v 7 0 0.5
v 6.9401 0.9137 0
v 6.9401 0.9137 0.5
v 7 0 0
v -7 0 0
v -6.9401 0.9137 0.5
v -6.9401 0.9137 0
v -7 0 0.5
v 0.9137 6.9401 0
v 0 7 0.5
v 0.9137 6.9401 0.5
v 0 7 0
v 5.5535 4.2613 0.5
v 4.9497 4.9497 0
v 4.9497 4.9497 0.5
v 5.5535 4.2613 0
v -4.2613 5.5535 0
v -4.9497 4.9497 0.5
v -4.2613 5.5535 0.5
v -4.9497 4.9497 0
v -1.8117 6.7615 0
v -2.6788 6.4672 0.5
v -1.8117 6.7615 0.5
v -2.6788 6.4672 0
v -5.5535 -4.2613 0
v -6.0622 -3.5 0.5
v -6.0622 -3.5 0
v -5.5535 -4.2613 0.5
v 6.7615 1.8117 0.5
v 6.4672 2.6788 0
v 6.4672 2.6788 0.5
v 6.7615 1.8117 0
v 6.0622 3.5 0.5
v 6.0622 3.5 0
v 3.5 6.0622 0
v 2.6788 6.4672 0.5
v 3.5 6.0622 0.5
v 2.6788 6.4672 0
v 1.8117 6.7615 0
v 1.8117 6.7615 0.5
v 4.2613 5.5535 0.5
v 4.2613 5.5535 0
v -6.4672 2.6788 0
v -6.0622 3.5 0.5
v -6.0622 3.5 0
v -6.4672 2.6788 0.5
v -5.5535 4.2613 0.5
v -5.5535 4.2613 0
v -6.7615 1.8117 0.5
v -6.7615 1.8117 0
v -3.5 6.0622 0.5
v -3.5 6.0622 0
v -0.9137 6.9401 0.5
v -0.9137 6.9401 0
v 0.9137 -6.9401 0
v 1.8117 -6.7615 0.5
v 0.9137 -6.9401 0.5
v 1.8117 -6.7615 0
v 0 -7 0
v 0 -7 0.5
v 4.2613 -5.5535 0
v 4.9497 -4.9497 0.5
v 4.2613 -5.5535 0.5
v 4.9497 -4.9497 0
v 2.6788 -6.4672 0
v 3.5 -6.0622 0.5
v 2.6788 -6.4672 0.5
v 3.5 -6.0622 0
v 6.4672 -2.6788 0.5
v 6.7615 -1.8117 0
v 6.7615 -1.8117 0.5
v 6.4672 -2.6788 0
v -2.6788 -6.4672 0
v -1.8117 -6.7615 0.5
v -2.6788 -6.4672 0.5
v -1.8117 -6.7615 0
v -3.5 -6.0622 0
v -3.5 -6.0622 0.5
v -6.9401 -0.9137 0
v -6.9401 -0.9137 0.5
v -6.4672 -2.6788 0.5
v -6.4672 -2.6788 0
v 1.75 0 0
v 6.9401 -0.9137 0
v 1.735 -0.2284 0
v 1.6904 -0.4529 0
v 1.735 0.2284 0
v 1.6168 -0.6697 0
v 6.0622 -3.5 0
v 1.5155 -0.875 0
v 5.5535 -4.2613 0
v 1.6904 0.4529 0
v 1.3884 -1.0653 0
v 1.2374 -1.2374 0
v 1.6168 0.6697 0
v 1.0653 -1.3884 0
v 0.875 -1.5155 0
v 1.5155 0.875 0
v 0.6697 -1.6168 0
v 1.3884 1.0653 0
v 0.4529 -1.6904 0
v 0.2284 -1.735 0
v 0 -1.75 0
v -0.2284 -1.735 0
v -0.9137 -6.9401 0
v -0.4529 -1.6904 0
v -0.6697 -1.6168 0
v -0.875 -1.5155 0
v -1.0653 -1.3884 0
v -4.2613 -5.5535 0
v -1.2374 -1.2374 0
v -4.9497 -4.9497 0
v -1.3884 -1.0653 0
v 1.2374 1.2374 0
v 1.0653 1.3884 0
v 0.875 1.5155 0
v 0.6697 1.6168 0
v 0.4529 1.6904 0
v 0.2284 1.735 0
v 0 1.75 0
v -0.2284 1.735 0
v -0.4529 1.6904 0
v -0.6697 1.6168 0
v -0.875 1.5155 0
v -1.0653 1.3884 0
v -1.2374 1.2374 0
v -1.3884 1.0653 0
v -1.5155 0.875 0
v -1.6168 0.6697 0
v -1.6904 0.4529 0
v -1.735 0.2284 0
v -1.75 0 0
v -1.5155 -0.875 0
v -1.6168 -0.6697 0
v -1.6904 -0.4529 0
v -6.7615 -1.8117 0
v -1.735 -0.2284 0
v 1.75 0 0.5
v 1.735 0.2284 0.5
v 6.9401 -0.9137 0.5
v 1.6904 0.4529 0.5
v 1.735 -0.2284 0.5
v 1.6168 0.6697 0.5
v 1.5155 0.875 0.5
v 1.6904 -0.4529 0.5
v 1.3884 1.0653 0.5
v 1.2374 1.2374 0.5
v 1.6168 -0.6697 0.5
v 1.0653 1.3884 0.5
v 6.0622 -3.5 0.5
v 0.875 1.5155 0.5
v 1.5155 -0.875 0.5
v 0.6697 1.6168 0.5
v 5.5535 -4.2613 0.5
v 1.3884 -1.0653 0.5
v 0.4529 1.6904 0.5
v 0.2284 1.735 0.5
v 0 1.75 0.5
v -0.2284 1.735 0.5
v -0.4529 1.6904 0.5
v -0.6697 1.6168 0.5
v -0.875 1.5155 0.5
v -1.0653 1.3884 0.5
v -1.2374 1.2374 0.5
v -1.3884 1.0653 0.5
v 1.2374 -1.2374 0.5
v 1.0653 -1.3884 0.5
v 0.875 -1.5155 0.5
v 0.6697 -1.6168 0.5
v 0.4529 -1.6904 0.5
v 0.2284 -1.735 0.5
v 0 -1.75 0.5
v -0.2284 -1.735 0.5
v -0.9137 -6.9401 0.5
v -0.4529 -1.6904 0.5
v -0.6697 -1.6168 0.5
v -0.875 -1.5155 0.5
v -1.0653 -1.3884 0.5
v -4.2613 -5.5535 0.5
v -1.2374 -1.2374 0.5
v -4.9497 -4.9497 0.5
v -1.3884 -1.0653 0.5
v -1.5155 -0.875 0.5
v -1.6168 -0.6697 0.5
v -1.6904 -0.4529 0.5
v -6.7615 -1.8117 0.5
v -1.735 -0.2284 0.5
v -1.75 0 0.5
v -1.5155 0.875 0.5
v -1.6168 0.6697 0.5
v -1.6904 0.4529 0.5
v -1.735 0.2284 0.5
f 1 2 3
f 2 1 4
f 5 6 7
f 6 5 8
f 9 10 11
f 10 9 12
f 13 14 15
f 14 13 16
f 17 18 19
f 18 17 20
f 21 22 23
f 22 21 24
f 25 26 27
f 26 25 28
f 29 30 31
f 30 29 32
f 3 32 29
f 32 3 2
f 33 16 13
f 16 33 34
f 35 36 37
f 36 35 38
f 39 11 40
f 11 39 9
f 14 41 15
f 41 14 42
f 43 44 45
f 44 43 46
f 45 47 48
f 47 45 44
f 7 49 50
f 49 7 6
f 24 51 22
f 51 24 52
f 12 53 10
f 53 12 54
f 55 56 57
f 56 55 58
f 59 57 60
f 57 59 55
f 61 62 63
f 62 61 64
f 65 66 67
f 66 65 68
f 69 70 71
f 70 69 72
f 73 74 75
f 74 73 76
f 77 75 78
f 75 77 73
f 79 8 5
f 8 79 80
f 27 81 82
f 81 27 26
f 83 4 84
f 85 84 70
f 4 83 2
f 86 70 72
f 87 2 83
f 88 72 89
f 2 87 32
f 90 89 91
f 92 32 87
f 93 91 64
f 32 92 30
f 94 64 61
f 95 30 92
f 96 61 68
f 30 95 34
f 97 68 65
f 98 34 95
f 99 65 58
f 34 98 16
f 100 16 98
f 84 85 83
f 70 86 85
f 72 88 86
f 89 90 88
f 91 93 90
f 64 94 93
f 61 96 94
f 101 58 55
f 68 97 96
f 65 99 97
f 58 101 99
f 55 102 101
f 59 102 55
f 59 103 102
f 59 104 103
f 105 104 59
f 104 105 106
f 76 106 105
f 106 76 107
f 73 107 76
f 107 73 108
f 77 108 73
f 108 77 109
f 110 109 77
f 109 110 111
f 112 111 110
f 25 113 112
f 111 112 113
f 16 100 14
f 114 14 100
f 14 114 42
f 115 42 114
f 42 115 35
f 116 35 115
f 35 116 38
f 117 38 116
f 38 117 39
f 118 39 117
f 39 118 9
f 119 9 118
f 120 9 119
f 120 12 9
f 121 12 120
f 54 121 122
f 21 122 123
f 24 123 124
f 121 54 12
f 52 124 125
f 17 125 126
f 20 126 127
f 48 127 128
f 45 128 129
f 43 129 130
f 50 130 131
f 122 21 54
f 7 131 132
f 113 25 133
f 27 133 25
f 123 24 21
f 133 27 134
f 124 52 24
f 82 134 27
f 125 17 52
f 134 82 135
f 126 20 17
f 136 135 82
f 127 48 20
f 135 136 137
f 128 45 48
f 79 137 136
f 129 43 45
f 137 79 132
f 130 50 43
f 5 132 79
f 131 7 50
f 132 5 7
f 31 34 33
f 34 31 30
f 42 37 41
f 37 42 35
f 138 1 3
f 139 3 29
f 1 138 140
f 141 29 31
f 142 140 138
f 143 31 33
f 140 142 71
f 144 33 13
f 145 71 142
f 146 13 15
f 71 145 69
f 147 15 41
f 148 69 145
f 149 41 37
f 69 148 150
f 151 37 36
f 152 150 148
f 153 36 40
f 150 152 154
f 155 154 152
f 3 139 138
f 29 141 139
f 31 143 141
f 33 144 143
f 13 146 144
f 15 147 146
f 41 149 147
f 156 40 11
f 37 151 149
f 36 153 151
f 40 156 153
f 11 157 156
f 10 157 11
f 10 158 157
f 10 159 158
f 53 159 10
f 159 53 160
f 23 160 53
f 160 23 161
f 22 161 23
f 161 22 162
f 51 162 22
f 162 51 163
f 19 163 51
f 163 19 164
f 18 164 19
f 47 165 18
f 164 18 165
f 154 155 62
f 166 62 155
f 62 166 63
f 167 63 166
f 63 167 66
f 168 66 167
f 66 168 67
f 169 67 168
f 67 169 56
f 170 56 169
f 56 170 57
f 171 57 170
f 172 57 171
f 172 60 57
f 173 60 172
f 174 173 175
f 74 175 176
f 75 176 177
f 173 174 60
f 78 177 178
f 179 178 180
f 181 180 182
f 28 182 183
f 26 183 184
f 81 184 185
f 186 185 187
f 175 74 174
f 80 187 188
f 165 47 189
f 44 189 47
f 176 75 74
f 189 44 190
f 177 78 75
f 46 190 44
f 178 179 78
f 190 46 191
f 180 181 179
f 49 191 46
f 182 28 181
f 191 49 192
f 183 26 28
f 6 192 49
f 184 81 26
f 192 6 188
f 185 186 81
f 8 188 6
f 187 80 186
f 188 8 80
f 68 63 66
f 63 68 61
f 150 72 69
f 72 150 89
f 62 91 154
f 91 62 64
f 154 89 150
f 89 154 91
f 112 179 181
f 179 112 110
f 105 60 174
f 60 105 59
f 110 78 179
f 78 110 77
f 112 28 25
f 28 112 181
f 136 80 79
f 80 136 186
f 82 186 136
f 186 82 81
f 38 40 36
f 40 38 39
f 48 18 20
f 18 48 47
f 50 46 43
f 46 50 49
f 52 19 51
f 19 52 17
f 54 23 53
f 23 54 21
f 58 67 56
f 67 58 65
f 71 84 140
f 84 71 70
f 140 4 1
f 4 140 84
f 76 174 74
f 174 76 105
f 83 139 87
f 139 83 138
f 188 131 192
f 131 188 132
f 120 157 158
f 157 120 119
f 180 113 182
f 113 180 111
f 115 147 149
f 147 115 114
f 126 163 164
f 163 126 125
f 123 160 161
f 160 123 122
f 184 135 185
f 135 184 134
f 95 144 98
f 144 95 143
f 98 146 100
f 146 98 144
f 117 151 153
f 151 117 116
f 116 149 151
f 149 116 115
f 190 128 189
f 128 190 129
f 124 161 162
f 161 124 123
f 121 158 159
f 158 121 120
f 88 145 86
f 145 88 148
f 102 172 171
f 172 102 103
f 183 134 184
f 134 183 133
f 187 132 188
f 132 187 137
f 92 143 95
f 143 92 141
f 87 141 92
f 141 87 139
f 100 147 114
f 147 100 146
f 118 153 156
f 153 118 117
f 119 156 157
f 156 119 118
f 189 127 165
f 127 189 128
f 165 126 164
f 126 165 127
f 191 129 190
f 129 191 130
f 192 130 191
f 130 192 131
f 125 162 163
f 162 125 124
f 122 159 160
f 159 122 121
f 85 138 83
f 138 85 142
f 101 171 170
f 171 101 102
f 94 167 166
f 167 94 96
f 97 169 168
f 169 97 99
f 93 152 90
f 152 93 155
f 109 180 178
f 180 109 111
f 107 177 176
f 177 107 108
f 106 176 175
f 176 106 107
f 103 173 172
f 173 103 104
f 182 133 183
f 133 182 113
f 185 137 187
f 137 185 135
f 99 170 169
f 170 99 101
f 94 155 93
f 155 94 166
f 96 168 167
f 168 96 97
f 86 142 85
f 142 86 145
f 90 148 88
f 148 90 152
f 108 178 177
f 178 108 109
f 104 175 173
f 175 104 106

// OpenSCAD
// file: parameters.scad
// =============================================================================
// Gen-CC — nightly 2026-10-13 (physics_scorer, honest magpylib watts)
// Stator-only upgrade for an existing Gen-BX: the R71 rotors and Ø168 steel stay as they are; a new annular 12-bobbin stator with 6.3 mm copper (magnet gap 9.35 → 8.90 mm) and longer r52–90 bobbins (the open-centre stator now packs one size up) replaces the old one, together with a shorter gap sleeve, frame rods moved out to R93.5 and new bearing bridges. No new magnets or steel.
// Clocking 0 deg (magnets N facing S) + D-flat keyed bore + index notch + flip-symmetric hole map.
// Windable 2-piece bobbin; turns = physics_scorer turns_fit; copper only between flanges.
// Steel back-iron: 2× Ø168 × 4.76 mm (3/16") mild-steel discs (steel_backiron_disc.dxf); magnets sit ON the steel
// (through-pockets) -> score with --back-iron. Night 2026-10-13.
// =============================================================================
topology            = "dual_rotor";

// --- Wire / winding (physics_scorer winding-fit) -------------------------------
wire_awg            = 26;
wire_od             = 0.45;     // insulated OD mm (bare 0.405)
fill_realistic      = 0.65;     // insulated-wire area / window (DENSE layered wind with a jig; scorer cap 0.65)
turns               = 391;       // = physics_scorer turns_fit (do NOT raise)
coil_former_type    = "bobbin";
coil_core_inset     = 15.20;     // radial copper build: hub = copper boundary inset by this
wind_build_axial    = 0.0;      // nothing proud of the flanges
wind_build_radial   = 0.0;

// --- Bobbin (base + lid) ---------------------------------------------------------
coil_id_r           = 52.00;    // copper boundary sector
coil_od_r           = 90.00;
span_deg            = 26.36;    // = pitch - 2*asin((wall+0.85)/coil_id_r) -> >=1.2 mm stator web
former_web          = 6.30;     // copper height between flanges (TALL copper: steel keeps Bz up)
flange_t            = 0.80;     // >= 0.8 mm FDM wall rule (tall winds push on the flanges)
wall                = 0.80;     // flange lip beyond copper
former_bare_h       = former_web + 2 * flange_t;
coil_envelope_h     = former_bare_h + 2 * wind_build_axial;
tab_w               = 7.0;
tab_len             = 7.0;
tab_h               = former_bare_h / 2;
pin_d               = 1.9;      // 1.75 mm filament locating pin
coil_mount_r        = coil_od_r + 0.2 + 4.0;
lead_y              = 1.6;
lead_slot_w         = 0.9;
lead_groove_d       = 0.6;

// --- Gap -------------------------------------------------------------------------
run_clear           = 0.50;     // rotor face -> flange
gap_spacer_h        = run_clear + wind_build_axial;
m2m                 = coil_envelope_h + 2 * run_clear;   // rotor face to rotor face (= gap_sleeve length)

// --- Stator ----------------------------------------------------------------------
coil_stations       = 12;
bay_clear           = 0.25;
stator_thick        = former_bare_h;                        // bobbins flush both faces
stator_od           = 198;
shaft_clear_stator  = 14.0;     // stator is static; gap sleeve OD 12 spins inside
stator_ir           = 46.95;    // ANNULAR stator: open centre (nested one-plate pack); inner rim 4.0 mm

// --- Rotor(s) --------------------------------------------------------------------
magnet_Br           = 1.43;     // N52
magnet_d_large      = 20.0;
magnet_h_large      = 5.0;      // one O20x5 per pocket
magnet_h_small      = 5.0;      // unused: no O5 pockets in this kit
halbach_magnetisation = "none";  // NO O5 assist magnets in this kit (scan: they lower the 4-pole score)
rotor_b_same_axis   = true;     // same-index magnets share one axis: N faces S across the gap
large_pocket_d      = 20.3;
small_pocket_d      = 5.3;
pocket_h            = 5.00;     // THROUGH the carrier: magnet back face sits on the steel disc (FLUSH seat: carrier = magnet height, magnet face level with the rotor face)
large_n             = 8;
R_large             = 71.0;
small_r_list        = [];       // no O5 pockets
carrier_od          = 168.0;
carrier_thick       = pocket_h;
hub_h               = 12.0;     // > steel_t + insert: radial set-screw clears the steel
hub_od              = 24.0;     // slim hub so the M4 brace rods fit at R~18 inside the coil ring
hub_insert_d        = 4.0;      // M3 heat-set insert, radial, bears on the D-flat
rotor_b_offset_deg  = 0.0;      // CLOCKING: magnets directly opposite
shaft_key           = "dflat";
dflat_depth         = 0.5;      // 8 mm shaft with 0.5 mm flat (7.5 across flat)
index_notch_d       = 3.0;

// --- Steel back-iron (buyable laser-cut) -------------------------------------------
steel_t             = 4.76;      // mild steel thickness (image method ignores it; sized from steel_flux.py so the return path stays well below saturation)
steel_center_hole   = 26.0;     // slips over the rotor hub (OD 24)
steel_od            = carrier_od;   // steel disc OD = rotor carrier OD

// --- Modular MAX interface ----------------------------------------------------------
shaft_bore          = 8.35;
dflat_x             = 4.0 - dflat_depth + (shaft_bore - 8.0) / 2;
bearing_d           = 21.85;
bearing_h           = 7.2;
m3_clear            = 3.5;
bolt_r_inner        = 30.0;     // M3 steel-disc clamp bolts (inside the magnet ring)
bolt_n_inner        = 4;
bolt_inner_angles   = [0, 90, 180, 270];
bolt_r_outer        = 44.0;     // second M3 steel-disc clamp ring
bolt_outer_angles   = [67.5, 112.5, 247.5, 292.5];
flange_bolt_r       = 93.5;     // frame rods: OUTSIDE the rotor OD (rotors spin inside them)
flange_bolt_n       = 4;
flange_bolt_offset  = 45.00;    // between coil stations -> never cuts a lead groove/tab
brace_r             = 18.0;
brace_d             = 4.3;      // temporary M4 jack rods (assembly only)
brace_n             = 4;
brace_angles        = [45, 135, 225, 315];          // flip-symmetric

spacer_pad_od       = 14.0;
spacer_pad_id       = m3_clear;
endbell_od          = 197.0;
endbell_thick       = 8.0;
endbell_shaft_clear = 10.0;
collar_h            = 10.0;
standoff_od         = 9.0;
frame_standoff_h    = run_clear + carrier_thick + hub_h + collar_h + 2.0;
sleeve_od           = 12.0;
plate_max_mm        = 410;

$fn = 64;
// main file
// Gen-CC — assembly gap shim, h = run_clear (rotor face -> flange); copper is inside the flanges
include <parameters.scad>;
$fn = 48;
difference() {
    cylinder(d=spacer_pad_od, h=gap_spacer_h);
    translate([0, 0, -0.1]) cylinder(d=spacer_pad_id, h=gap_spacer_h + 0.2);
}
